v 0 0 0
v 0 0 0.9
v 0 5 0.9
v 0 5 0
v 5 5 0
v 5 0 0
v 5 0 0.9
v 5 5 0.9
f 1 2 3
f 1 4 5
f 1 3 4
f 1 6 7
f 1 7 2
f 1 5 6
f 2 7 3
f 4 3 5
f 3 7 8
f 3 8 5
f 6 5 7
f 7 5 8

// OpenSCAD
/* Warning, this is a very basic generator with a lot of approximation 
input data : [VQFN, LWX, 5x5x0.9mm, 24, , A, C04-00482A]
generated by com.zoubworld.electronics.cad.model3d.Basic
Date : Sun Feb 15 10:50:48 CET 2026
*/

//body
color("black")
translate([0,0,0])
cube([5.0,5.0,0.9], center=false);
